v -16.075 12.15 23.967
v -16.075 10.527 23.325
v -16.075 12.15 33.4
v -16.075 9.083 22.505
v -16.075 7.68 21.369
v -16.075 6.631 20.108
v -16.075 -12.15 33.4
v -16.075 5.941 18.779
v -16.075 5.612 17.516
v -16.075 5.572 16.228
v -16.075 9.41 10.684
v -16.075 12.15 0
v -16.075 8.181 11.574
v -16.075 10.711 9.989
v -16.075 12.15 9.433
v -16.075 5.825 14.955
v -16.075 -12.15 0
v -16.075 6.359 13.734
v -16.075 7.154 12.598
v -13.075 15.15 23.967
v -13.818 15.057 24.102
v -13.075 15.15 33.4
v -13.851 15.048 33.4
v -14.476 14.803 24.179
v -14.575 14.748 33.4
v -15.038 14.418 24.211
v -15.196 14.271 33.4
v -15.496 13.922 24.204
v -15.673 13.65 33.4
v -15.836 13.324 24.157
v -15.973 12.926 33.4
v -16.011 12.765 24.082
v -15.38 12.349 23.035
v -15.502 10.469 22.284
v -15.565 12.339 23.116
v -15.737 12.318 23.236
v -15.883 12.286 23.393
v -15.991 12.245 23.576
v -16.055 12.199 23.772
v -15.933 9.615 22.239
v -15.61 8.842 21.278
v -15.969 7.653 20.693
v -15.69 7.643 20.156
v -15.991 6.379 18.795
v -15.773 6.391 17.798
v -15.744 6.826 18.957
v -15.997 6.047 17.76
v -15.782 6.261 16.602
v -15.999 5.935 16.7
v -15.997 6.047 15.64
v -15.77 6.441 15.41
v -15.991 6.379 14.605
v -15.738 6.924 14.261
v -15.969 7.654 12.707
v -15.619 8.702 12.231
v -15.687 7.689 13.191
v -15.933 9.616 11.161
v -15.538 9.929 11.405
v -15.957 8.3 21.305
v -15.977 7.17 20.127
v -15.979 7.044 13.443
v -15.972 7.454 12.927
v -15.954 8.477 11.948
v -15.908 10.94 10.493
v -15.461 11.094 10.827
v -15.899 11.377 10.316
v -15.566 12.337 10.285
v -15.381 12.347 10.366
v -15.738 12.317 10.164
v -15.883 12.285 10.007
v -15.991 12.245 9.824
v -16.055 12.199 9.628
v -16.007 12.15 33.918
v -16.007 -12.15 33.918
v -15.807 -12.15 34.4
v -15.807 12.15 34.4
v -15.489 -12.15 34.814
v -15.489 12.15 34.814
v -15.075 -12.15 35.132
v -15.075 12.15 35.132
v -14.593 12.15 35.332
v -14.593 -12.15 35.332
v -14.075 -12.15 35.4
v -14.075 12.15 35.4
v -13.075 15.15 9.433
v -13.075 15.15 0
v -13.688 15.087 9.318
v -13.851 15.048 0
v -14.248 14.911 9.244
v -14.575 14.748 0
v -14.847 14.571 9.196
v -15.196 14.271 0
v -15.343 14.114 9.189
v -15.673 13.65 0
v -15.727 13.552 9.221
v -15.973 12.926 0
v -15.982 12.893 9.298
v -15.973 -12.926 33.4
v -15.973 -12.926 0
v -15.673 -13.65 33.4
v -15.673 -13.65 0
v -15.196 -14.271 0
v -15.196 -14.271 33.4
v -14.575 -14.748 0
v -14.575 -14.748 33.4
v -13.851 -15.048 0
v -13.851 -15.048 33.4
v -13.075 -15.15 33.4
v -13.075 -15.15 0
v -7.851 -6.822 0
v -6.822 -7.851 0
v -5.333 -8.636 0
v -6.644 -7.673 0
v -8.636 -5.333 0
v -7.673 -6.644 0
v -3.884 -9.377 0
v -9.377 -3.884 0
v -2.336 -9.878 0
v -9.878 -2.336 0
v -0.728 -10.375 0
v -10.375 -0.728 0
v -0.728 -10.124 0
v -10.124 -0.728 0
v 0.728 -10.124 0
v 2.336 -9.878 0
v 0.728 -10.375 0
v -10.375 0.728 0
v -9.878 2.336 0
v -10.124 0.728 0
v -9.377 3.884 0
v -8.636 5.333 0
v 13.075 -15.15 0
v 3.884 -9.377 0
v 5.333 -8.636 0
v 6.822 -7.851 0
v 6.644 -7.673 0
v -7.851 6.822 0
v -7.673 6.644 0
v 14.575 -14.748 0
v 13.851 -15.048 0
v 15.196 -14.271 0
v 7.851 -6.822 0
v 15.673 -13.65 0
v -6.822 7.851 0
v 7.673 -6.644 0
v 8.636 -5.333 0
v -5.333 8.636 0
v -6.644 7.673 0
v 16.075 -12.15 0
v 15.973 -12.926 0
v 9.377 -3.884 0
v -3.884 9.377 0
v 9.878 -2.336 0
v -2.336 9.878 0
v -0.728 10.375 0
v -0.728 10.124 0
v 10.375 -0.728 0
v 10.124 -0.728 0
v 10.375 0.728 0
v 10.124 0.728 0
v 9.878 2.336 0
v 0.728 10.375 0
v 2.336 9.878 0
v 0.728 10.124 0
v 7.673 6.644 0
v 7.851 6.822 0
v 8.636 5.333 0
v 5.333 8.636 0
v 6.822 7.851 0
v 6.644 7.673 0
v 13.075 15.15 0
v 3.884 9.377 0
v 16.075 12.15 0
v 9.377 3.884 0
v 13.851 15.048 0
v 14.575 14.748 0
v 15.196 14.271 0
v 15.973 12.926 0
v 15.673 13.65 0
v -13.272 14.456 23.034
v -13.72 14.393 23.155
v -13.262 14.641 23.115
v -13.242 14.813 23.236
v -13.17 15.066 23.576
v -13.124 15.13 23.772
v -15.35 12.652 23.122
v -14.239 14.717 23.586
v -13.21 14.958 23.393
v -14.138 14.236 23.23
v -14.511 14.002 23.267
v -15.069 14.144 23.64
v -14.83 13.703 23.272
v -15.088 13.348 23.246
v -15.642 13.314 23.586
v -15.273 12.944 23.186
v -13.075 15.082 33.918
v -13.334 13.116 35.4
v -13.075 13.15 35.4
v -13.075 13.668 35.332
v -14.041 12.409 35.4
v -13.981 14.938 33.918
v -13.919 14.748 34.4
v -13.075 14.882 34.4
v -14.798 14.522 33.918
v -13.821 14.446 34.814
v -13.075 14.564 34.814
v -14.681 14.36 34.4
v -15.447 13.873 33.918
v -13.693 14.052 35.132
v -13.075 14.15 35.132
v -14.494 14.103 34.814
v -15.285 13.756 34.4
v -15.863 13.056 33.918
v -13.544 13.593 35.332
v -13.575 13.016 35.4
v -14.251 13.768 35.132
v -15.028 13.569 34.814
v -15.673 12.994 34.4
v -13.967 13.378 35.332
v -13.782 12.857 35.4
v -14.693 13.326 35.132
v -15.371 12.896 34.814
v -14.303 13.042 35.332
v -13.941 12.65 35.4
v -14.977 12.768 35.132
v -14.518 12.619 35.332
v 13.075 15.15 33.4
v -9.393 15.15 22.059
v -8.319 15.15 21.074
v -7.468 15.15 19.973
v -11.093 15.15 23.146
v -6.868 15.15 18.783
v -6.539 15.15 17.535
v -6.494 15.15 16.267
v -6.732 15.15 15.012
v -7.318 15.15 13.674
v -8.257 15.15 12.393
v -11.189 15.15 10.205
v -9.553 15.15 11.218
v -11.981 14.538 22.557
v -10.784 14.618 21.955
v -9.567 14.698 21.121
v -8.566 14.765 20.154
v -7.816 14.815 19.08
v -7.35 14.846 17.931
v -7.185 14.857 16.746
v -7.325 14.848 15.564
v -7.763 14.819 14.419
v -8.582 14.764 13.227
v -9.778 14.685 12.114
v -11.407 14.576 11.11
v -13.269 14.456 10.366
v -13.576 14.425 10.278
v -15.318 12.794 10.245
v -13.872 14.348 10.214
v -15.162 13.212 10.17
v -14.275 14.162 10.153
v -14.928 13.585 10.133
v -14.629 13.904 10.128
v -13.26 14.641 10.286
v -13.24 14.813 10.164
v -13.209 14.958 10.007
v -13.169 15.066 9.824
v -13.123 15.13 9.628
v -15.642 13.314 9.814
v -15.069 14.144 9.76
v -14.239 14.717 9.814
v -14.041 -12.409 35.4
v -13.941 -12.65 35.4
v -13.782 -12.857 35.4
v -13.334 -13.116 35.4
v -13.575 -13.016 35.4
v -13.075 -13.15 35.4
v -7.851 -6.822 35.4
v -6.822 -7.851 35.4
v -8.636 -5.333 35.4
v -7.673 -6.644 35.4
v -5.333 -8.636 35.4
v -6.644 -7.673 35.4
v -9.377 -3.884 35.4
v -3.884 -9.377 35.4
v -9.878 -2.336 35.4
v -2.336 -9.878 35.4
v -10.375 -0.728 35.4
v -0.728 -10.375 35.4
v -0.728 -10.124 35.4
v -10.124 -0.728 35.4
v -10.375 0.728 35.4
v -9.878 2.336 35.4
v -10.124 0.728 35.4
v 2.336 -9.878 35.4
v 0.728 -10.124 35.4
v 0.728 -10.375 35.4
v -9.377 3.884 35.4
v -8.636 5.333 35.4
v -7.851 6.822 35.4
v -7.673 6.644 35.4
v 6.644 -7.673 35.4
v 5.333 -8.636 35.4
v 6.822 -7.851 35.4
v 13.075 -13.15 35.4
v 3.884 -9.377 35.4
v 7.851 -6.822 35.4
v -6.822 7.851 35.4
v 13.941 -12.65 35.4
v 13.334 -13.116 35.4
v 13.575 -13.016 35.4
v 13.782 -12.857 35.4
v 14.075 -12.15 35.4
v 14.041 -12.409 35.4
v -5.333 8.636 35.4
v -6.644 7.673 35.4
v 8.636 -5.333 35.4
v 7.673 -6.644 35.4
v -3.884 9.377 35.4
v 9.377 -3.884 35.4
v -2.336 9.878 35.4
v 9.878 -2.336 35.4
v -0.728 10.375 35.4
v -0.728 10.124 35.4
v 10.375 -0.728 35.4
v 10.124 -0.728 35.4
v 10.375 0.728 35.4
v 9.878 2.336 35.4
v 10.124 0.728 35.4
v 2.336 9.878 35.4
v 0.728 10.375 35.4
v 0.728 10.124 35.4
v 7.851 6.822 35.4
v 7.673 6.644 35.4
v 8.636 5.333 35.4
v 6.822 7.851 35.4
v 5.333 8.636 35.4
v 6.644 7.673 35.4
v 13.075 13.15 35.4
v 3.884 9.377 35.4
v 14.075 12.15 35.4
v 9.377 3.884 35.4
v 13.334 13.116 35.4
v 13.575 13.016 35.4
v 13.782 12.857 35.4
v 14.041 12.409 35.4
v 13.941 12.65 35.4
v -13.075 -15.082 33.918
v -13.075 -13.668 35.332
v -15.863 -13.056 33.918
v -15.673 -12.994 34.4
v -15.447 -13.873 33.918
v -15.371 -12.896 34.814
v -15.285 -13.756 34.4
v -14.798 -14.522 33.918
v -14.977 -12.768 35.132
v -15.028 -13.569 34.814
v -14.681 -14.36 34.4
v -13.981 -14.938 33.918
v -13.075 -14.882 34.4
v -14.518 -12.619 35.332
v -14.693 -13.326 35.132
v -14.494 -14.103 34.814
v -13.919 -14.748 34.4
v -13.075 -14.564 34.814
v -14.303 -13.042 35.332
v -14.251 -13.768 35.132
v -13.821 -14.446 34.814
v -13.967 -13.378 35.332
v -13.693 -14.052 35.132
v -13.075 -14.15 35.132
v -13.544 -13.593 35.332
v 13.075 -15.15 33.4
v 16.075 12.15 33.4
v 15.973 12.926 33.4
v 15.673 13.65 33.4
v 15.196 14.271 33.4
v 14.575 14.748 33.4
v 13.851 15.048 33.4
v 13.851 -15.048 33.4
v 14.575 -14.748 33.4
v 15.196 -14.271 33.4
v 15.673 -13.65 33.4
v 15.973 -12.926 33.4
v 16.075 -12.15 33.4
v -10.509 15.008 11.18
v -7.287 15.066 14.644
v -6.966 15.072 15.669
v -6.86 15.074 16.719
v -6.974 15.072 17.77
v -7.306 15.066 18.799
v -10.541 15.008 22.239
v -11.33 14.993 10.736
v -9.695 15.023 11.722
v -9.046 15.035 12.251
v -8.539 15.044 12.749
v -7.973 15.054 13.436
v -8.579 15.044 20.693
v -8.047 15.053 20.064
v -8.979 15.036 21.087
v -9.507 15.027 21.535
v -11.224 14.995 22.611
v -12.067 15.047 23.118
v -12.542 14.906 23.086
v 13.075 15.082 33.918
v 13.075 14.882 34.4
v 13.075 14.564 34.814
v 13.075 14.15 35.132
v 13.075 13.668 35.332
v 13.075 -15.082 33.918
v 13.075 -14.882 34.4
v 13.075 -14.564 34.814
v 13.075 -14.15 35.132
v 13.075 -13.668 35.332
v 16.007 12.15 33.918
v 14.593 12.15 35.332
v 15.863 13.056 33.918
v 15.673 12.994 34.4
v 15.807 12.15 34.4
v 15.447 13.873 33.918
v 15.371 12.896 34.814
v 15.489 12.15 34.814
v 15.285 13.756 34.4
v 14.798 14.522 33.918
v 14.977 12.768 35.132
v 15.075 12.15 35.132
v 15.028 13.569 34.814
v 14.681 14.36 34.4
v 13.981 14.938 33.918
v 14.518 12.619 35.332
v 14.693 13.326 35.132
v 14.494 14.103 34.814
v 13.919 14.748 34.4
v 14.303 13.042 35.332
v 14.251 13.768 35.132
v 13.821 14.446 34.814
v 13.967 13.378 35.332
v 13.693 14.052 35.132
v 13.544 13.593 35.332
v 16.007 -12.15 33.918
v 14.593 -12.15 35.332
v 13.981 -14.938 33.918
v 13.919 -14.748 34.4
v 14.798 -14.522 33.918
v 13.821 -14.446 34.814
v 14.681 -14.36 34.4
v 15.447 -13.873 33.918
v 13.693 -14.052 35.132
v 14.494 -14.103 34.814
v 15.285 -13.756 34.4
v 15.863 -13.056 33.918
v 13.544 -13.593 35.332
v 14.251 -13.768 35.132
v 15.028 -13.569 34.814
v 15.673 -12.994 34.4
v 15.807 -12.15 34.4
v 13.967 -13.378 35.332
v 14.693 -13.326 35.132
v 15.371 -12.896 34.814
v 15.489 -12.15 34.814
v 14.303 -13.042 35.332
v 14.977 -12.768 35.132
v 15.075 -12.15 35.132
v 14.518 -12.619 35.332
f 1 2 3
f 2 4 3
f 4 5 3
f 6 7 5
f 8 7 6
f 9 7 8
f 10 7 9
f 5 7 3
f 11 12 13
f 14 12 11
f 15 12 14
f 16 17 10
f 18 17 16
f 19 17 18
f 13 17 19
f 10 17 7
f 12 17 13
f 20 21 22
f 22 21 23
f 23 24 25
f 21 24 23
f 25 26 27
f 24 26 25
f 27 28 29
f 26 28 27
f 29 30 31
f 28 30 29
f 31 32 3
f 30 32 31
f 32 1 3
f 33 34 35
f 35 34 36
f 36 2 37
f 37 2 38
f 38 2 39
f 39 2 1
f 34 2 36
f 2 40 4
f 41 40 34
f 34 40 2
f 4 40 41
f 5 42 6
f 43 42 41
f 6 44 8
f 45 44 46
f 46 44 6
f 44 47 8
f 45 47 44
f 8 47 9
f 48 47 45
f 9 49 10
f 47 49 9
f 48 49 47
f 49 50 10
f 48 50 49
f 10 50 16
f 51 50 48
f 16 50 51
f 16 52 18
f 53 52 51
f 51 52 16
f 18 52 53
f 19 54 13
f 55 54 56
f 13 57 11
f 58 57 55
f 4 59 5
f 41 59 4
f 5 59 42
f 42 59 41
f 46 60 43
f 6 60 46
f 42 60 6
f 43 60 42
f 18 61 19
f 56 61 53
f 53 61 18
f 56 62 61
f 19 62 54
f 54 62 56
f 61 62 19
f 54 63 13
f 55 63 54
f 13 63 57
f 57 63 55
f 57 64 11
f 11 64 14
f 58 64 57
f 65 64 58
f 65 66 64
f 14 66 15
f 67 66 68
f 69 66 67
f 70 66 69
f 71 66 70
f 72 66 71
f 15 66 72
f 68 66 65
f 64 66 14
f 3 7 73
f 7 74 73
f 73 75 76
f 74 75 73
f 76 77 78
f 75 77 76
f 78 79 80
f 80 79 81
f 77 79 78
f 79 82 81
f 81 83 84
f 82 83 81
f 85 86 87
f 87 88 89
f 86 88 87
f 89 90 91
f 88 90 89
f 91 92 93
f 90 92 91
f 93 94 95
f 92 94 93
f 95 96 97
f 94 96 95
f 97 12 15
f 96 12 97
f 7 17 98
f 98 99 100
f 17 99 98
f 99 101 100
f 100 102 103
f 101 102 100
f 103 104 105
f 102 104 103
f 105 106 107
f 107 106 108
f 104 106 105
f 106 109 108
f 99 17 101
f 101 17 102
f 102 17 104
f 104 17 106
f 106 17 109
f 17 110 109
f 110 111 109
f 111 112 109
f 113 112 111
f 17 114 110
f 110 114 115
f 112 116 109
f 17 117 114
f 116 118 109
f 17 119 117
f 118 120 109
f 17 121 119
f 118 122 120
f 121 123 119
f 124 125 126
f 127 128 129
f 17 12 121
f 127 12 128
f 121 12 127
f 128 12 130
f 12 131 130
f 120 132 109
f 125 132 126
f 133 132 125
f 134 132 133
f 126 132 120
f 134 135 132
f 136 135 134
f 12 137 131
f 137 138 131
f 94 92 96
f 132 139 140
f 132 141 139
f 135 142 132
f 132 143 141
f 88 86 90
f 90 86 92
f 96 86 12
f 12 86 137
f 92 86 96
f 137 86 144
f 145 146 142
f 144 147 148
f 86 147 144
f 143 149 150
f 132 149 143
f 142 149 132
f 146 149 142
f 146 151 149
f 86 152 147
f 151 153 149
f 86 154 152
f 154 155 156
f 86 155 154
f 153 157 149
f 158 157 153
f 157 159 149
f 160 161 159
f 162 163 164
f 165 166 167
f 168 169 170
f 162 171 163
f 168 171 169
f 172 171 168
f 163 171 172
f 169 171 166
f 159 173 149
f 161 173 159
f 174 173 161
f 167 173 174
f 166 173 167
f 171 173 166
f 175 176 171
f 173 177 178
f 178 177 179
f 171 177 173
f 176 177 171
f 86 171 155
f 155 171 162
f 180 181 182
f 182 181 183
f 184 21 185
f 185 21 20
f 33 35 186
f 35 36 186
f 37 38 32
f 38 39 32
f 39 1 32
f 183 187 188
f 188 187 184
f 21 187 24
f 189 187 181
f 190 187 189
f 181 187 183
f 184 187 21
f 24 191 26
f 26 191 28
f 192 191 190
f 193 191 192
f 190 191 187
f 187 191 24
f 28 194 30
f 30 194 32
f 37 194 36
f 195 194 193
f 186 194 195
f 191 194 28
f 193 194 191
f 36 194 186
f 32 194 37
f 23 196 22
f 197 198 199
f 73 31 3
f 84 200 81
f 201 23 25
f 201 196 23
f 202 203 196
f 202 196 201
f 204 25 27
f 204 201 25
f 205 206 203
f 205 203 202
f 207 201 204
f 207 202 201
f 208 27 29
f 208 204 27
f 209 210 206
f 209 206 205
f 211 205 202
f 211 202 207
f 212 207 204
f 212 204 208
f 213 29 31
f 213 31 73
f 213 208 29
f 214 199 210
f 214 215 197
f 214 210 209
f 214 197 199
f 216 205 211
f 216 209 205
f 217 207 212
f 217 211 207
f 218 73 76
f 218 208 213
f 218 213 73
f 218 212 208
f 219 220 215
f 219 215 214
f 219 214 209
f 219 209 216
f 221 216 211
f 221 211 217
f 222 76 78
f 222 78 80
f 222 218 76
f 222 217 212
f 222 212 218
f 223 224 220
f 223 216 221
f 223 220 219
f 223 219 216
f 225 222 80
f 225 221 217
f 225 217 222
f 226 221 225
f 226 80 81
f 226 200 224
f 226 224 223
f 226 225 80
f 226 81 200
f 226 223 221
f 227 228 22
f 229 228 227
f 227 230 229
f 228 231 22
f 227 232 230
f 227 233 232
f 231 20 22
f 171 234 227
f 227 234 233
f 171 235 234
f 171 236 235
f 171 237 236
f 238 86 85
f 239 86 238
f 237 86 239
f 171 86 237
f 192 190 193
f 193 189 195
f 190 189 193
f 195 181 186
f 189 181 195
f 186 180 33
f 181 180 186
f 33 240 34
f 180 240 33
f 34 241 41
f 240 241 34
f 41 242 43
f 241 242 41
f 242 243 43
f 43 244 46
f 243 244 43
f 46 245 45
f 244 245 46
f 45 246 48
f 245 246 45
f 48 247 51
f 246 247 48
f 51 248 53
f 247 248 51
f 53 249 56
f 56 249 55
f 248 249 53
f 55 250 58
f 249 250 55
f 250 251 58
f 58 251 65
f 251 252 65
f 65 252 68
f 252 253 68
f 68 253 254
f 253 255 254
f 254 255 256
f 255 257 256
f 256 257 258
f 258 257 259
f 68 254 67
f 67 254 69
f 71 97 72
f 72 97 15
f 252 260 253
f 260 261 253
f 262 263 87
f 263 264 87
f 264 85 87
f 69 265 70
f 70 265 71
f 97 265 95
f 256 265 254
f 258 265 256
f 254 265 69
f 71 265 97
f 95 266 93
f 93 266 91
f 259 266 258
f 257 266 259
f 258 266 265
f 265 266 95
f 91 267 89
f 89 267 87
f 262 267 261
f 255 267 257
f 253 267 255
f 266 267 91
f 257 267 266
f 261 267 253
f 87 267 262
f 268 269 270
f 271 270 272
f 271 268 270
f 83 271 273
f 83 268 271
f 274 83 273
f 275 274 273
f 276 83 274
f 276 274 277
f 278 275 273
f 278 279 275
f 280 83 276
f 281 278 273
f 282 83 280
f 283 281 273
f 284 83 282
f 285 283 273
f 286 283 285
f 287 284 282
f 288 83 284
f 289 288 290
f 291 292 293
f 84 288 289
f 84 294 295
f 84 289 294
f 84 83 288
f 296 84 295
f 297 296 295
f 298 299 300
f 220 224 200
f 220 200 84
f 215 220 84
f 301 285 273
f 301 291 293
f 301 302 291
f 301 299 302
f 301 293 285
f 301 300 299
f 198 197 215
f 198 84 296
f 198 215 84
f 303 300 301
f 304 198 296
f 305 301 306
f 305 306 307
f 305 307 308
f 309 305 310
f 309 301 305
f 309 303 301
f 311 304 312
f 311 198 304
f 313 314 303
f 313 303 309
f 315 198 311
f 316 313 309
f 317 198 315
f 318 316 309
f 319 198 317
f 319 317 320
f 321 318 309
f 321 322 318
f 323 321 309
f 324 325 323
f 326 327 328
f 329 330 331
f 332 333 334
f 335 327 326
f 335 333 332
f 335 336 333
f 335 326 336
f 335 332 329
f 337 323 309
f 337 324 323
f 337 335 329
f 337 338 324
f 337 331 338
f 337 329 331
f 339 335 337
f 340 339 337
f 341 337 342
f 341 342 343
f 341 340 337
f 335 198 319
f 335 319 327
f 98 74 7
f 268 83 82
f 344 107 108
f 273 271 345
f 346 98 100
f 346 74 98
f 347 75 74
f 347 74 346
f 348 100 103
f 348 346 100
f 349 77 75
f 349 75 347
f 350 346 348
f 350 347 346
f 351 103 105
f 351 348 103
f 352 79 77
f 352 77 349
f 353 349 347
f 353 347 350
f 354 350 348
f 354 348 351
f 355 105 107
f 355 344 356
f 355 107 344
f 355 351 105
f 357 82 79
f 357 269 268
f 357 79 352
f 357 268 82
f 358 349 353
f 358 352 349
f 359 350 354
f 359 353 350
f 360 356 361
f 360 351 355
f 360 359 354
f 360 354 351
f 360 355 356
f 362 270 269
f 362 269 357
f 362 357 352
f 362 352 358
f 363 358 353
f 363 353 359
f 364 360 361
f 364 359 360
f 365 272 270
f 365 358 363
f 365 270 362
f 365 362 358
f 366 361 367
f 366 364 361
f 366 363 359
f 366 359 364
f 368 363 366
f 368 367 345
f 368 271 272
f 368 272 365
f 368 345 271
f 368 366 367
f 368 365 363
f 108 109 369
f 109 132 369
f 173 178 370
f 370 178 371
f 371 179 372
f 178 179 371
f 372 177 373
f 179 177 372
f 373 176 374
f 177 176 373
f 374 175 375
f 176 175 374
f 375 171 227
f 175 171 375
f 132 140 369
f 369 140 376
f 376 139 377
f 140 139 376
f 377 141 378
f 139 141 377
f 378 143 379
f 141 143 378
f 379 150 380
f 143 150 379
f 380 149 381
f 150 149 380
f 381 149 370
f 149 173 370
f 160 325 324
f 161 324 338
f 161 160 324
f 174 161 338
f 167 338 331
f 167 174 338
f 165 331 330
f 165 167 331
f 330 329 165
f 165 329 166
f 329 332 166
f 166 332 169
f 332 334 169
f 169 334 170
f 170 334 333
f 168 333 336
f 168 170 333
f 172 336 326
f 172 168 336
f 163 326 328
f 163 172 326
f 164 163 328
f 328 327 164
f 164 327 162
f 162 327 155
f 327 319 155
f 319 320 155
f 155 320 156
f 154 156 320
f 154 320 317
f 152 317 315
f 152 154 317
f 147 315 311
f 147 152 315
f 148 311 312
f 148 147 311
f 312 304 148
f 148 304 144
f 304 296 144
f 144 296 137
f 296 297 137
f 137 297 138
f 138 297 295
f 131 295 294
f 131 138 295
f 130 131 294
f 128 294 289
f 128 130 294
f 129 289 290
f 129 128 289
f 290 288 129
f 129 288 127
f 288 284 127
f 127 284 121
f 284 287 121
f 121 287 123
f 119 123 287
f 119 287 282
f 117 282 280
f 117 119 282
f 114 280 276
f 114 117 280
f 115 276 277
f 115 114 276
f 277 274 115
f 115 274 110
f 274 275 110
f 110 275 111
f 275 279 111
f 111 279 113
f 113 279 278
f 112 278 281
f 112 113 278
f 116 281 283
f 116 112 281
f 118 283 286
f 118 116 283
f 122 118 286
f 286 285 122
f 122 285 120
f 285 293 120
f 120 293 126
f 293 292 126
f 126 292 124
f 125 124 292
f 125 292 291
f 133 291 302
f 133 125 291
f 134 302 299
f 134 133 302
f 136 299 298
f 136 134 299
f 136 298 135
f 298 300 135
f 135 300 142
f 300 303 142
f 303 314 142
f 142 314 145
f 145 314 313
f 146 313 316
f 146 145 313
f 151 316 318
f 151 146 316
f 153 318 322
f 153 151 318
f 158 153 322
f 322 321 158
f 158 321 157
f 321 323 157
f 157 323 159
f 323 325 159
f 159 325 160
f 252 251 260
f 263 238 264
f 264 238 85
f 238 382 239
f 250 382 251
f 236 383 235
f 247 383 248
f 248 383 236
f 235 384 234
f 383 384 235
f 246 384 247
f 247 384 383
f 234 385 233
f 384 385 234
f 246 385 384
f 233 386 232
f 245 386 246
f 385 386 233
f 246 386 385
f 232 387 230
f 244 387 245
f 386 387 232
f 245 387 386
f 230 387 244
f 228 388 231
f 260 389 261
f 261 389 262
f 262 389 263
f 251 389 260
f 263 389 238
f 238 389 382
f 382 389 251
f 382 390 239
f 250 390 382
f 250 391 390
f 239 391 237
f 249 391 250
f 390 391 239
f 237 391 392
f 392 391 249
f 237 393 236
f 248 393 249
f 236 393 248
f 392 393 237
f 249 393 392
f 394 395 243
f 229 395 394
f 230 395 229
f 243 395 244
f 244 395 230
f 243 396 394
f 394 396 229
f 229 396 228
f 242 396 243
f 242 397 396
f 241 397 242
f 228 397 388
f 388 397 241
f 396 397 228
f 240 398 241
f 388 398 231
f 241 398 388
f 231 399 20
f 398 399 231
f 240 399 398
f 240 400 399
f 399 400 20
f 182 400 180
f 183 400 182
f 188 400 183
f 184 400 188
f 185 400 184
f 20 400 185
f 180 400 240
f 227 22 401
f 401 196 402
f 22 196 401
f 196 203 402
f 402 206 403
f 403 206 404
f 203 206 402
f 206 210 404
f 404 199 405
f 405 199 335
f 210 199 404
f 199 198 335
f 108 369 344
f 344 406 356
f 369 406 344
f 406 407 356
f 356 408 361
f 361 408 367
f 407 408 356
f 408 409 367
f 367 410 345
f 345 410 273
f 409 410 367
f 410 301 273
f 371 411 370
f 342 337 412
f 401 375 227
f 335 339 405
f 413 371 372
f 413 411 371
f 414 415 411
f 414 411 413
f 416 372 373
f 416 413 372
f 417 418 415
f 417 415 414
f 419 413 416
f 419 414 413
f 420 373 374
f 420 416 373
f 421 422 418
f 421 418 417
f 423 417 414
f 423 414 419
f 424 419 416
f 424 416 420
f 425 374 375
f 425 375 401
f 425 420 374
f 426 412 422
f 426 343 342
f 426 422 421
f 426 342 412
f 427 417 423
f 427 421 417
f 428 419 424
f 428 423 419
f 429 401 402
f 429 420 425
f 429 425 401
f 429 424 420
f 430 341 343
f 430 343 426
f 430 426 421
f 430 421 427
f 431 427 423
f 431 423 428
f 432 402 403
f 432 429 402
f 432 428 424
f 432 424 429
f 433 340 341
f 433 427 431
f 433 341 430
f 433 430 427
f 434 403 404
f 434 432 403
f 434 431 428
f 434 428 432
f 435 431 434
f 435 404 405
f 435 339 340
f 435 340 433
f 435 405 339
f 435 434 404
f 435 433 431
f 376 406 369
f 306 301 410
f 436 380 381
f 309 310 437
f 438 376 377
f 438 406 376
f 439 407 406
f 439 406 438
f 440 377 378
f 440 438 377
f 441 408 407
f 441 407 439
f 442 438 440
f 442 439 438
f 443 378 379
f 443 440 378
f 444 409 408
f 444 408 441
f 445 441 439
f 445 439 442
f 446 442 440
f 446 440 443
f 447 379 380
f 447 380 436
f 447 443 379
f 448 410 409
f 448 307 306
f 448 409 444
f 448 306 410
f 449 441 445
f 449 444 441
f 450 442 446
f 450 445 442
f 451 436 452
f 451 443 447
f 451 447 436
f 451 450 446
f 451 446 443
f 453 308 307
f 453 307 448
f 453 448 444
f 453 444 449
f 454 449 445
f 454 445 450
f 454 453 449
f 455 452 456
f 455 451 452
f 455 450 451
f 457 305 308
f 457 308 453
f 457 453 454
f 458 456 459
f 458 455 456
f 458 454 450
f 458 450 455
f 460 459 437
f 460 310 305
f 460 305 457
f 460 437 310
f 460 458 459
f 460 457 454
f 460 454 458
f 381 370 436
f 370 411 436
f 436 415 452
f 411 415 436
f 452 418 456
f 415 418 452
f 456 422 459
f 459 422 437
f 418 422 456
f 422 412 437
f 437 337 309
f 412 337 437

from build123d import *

# Parameters (mm, degrees)
SKETCH_R             = 10.15
PAD_DEPTH            = 35.4
SKETCH001_W          = 1.455354
SKETCH001_H          = 0.628309
POCKET_DEPTH         = 148.624187
POLARPATTERN_COUNT   = 8
FILLET_R             = 2
SKETCH002_R          = 7
POCKET001_DEPTH      = 21.426335
POCKET001_DEPTH_BACK = 22.734483
FILLET001_R          = 1


with BuildPart() as part:
    # Sketch → Pad (new body)
    with BuildSketch(Plane.XY):
        with BuildLine():
            Line((-16.075, 12.15), (-16.075, -12.15))
            ThreePointArc((-16.075, -12.15), (-15.19632, -14.27132), (-13.075, -15.15))
            Line((-13.075, -15.15), (13.075, -15.15))
            ThreePointArc((13.075, -15.15), (15.19632, -14.27132), (16.075, -12.15))
            Line((16.075, -12.15), (16.075, 12.15))
            ThreePointArc((16.075, 12.15), (15.19632, 14.27132), (13.075, 15.15))
            Line((13.075, 15.15), (-13.075, 15.15))
            ThreePointArc((-13.075, 15.15), (-15.19632, 14.27132), (-16.075, 12.15))
        make_face()
        Circle(SKETCH_R, mode=Mode.SUBTRACT)
    extrude(amount=PAD_DEPTH)

    # Sketch001 (on Face11 of Pad) → Pocket (cut, through all)
    with BuildSketch(Plane.XY.offset(35.4)):
        with Locations((0, 10.060702)):
            Rectangle(SKETCH001_W, SKETCH001_H)
    pocket = extrude(amount=-POCKET_DEPTH, mode=Mode.SUBTRACT)

    # PolarPattern: Pocket ×8 about axis
    polarpattern_axis = Axis((0, 0, 35.4), (0, 0, 1))
    for i in range(1, POLARPATTERN_COUNT):
        add(pocket.rotate(polarpattern_axis, i * 360 / POLARPATTERN_COUNT), mode=Mode.SUBTRACT)

    # Fillet
    fillet_edges = [part.edges().sort_by_distance(p)[0] for p in [
        (-16.075, 0, 35.4),
    ]]
    fillet(fillet_edges, radius=FILLET_R)

    # Sketch002 (on DatumPlane) → Pocket001 (cut, two sides)
    with BuildSketch(Plane(origin=(-14.984859, 14.059859, 16.7), x_dir=(-0.707107, 0.707107, 0), z_dir=(0.707107, 0.707107, 0))) as pocket001_sk:
        with Locations((2.048201, 0)):
            Circle(SKETCH002_R)
    extrude(amount=-POCKET001_DEPTH, mode=Mode.SUBTRACT)
    extrude(pocket001_sk.sketch, amount=POCKET001_DEPTH_BACK, mode=Mode.SUBTRACT)

    # Fillet001
    fillet001_edges = [part.edges().sort_by_distance(p)[0] for p in [
        (-6.891817, 15.15, 16.7),
    ]]
    fillet(fillet001_edges, radius=FILLET001_R)


solid = part.part
